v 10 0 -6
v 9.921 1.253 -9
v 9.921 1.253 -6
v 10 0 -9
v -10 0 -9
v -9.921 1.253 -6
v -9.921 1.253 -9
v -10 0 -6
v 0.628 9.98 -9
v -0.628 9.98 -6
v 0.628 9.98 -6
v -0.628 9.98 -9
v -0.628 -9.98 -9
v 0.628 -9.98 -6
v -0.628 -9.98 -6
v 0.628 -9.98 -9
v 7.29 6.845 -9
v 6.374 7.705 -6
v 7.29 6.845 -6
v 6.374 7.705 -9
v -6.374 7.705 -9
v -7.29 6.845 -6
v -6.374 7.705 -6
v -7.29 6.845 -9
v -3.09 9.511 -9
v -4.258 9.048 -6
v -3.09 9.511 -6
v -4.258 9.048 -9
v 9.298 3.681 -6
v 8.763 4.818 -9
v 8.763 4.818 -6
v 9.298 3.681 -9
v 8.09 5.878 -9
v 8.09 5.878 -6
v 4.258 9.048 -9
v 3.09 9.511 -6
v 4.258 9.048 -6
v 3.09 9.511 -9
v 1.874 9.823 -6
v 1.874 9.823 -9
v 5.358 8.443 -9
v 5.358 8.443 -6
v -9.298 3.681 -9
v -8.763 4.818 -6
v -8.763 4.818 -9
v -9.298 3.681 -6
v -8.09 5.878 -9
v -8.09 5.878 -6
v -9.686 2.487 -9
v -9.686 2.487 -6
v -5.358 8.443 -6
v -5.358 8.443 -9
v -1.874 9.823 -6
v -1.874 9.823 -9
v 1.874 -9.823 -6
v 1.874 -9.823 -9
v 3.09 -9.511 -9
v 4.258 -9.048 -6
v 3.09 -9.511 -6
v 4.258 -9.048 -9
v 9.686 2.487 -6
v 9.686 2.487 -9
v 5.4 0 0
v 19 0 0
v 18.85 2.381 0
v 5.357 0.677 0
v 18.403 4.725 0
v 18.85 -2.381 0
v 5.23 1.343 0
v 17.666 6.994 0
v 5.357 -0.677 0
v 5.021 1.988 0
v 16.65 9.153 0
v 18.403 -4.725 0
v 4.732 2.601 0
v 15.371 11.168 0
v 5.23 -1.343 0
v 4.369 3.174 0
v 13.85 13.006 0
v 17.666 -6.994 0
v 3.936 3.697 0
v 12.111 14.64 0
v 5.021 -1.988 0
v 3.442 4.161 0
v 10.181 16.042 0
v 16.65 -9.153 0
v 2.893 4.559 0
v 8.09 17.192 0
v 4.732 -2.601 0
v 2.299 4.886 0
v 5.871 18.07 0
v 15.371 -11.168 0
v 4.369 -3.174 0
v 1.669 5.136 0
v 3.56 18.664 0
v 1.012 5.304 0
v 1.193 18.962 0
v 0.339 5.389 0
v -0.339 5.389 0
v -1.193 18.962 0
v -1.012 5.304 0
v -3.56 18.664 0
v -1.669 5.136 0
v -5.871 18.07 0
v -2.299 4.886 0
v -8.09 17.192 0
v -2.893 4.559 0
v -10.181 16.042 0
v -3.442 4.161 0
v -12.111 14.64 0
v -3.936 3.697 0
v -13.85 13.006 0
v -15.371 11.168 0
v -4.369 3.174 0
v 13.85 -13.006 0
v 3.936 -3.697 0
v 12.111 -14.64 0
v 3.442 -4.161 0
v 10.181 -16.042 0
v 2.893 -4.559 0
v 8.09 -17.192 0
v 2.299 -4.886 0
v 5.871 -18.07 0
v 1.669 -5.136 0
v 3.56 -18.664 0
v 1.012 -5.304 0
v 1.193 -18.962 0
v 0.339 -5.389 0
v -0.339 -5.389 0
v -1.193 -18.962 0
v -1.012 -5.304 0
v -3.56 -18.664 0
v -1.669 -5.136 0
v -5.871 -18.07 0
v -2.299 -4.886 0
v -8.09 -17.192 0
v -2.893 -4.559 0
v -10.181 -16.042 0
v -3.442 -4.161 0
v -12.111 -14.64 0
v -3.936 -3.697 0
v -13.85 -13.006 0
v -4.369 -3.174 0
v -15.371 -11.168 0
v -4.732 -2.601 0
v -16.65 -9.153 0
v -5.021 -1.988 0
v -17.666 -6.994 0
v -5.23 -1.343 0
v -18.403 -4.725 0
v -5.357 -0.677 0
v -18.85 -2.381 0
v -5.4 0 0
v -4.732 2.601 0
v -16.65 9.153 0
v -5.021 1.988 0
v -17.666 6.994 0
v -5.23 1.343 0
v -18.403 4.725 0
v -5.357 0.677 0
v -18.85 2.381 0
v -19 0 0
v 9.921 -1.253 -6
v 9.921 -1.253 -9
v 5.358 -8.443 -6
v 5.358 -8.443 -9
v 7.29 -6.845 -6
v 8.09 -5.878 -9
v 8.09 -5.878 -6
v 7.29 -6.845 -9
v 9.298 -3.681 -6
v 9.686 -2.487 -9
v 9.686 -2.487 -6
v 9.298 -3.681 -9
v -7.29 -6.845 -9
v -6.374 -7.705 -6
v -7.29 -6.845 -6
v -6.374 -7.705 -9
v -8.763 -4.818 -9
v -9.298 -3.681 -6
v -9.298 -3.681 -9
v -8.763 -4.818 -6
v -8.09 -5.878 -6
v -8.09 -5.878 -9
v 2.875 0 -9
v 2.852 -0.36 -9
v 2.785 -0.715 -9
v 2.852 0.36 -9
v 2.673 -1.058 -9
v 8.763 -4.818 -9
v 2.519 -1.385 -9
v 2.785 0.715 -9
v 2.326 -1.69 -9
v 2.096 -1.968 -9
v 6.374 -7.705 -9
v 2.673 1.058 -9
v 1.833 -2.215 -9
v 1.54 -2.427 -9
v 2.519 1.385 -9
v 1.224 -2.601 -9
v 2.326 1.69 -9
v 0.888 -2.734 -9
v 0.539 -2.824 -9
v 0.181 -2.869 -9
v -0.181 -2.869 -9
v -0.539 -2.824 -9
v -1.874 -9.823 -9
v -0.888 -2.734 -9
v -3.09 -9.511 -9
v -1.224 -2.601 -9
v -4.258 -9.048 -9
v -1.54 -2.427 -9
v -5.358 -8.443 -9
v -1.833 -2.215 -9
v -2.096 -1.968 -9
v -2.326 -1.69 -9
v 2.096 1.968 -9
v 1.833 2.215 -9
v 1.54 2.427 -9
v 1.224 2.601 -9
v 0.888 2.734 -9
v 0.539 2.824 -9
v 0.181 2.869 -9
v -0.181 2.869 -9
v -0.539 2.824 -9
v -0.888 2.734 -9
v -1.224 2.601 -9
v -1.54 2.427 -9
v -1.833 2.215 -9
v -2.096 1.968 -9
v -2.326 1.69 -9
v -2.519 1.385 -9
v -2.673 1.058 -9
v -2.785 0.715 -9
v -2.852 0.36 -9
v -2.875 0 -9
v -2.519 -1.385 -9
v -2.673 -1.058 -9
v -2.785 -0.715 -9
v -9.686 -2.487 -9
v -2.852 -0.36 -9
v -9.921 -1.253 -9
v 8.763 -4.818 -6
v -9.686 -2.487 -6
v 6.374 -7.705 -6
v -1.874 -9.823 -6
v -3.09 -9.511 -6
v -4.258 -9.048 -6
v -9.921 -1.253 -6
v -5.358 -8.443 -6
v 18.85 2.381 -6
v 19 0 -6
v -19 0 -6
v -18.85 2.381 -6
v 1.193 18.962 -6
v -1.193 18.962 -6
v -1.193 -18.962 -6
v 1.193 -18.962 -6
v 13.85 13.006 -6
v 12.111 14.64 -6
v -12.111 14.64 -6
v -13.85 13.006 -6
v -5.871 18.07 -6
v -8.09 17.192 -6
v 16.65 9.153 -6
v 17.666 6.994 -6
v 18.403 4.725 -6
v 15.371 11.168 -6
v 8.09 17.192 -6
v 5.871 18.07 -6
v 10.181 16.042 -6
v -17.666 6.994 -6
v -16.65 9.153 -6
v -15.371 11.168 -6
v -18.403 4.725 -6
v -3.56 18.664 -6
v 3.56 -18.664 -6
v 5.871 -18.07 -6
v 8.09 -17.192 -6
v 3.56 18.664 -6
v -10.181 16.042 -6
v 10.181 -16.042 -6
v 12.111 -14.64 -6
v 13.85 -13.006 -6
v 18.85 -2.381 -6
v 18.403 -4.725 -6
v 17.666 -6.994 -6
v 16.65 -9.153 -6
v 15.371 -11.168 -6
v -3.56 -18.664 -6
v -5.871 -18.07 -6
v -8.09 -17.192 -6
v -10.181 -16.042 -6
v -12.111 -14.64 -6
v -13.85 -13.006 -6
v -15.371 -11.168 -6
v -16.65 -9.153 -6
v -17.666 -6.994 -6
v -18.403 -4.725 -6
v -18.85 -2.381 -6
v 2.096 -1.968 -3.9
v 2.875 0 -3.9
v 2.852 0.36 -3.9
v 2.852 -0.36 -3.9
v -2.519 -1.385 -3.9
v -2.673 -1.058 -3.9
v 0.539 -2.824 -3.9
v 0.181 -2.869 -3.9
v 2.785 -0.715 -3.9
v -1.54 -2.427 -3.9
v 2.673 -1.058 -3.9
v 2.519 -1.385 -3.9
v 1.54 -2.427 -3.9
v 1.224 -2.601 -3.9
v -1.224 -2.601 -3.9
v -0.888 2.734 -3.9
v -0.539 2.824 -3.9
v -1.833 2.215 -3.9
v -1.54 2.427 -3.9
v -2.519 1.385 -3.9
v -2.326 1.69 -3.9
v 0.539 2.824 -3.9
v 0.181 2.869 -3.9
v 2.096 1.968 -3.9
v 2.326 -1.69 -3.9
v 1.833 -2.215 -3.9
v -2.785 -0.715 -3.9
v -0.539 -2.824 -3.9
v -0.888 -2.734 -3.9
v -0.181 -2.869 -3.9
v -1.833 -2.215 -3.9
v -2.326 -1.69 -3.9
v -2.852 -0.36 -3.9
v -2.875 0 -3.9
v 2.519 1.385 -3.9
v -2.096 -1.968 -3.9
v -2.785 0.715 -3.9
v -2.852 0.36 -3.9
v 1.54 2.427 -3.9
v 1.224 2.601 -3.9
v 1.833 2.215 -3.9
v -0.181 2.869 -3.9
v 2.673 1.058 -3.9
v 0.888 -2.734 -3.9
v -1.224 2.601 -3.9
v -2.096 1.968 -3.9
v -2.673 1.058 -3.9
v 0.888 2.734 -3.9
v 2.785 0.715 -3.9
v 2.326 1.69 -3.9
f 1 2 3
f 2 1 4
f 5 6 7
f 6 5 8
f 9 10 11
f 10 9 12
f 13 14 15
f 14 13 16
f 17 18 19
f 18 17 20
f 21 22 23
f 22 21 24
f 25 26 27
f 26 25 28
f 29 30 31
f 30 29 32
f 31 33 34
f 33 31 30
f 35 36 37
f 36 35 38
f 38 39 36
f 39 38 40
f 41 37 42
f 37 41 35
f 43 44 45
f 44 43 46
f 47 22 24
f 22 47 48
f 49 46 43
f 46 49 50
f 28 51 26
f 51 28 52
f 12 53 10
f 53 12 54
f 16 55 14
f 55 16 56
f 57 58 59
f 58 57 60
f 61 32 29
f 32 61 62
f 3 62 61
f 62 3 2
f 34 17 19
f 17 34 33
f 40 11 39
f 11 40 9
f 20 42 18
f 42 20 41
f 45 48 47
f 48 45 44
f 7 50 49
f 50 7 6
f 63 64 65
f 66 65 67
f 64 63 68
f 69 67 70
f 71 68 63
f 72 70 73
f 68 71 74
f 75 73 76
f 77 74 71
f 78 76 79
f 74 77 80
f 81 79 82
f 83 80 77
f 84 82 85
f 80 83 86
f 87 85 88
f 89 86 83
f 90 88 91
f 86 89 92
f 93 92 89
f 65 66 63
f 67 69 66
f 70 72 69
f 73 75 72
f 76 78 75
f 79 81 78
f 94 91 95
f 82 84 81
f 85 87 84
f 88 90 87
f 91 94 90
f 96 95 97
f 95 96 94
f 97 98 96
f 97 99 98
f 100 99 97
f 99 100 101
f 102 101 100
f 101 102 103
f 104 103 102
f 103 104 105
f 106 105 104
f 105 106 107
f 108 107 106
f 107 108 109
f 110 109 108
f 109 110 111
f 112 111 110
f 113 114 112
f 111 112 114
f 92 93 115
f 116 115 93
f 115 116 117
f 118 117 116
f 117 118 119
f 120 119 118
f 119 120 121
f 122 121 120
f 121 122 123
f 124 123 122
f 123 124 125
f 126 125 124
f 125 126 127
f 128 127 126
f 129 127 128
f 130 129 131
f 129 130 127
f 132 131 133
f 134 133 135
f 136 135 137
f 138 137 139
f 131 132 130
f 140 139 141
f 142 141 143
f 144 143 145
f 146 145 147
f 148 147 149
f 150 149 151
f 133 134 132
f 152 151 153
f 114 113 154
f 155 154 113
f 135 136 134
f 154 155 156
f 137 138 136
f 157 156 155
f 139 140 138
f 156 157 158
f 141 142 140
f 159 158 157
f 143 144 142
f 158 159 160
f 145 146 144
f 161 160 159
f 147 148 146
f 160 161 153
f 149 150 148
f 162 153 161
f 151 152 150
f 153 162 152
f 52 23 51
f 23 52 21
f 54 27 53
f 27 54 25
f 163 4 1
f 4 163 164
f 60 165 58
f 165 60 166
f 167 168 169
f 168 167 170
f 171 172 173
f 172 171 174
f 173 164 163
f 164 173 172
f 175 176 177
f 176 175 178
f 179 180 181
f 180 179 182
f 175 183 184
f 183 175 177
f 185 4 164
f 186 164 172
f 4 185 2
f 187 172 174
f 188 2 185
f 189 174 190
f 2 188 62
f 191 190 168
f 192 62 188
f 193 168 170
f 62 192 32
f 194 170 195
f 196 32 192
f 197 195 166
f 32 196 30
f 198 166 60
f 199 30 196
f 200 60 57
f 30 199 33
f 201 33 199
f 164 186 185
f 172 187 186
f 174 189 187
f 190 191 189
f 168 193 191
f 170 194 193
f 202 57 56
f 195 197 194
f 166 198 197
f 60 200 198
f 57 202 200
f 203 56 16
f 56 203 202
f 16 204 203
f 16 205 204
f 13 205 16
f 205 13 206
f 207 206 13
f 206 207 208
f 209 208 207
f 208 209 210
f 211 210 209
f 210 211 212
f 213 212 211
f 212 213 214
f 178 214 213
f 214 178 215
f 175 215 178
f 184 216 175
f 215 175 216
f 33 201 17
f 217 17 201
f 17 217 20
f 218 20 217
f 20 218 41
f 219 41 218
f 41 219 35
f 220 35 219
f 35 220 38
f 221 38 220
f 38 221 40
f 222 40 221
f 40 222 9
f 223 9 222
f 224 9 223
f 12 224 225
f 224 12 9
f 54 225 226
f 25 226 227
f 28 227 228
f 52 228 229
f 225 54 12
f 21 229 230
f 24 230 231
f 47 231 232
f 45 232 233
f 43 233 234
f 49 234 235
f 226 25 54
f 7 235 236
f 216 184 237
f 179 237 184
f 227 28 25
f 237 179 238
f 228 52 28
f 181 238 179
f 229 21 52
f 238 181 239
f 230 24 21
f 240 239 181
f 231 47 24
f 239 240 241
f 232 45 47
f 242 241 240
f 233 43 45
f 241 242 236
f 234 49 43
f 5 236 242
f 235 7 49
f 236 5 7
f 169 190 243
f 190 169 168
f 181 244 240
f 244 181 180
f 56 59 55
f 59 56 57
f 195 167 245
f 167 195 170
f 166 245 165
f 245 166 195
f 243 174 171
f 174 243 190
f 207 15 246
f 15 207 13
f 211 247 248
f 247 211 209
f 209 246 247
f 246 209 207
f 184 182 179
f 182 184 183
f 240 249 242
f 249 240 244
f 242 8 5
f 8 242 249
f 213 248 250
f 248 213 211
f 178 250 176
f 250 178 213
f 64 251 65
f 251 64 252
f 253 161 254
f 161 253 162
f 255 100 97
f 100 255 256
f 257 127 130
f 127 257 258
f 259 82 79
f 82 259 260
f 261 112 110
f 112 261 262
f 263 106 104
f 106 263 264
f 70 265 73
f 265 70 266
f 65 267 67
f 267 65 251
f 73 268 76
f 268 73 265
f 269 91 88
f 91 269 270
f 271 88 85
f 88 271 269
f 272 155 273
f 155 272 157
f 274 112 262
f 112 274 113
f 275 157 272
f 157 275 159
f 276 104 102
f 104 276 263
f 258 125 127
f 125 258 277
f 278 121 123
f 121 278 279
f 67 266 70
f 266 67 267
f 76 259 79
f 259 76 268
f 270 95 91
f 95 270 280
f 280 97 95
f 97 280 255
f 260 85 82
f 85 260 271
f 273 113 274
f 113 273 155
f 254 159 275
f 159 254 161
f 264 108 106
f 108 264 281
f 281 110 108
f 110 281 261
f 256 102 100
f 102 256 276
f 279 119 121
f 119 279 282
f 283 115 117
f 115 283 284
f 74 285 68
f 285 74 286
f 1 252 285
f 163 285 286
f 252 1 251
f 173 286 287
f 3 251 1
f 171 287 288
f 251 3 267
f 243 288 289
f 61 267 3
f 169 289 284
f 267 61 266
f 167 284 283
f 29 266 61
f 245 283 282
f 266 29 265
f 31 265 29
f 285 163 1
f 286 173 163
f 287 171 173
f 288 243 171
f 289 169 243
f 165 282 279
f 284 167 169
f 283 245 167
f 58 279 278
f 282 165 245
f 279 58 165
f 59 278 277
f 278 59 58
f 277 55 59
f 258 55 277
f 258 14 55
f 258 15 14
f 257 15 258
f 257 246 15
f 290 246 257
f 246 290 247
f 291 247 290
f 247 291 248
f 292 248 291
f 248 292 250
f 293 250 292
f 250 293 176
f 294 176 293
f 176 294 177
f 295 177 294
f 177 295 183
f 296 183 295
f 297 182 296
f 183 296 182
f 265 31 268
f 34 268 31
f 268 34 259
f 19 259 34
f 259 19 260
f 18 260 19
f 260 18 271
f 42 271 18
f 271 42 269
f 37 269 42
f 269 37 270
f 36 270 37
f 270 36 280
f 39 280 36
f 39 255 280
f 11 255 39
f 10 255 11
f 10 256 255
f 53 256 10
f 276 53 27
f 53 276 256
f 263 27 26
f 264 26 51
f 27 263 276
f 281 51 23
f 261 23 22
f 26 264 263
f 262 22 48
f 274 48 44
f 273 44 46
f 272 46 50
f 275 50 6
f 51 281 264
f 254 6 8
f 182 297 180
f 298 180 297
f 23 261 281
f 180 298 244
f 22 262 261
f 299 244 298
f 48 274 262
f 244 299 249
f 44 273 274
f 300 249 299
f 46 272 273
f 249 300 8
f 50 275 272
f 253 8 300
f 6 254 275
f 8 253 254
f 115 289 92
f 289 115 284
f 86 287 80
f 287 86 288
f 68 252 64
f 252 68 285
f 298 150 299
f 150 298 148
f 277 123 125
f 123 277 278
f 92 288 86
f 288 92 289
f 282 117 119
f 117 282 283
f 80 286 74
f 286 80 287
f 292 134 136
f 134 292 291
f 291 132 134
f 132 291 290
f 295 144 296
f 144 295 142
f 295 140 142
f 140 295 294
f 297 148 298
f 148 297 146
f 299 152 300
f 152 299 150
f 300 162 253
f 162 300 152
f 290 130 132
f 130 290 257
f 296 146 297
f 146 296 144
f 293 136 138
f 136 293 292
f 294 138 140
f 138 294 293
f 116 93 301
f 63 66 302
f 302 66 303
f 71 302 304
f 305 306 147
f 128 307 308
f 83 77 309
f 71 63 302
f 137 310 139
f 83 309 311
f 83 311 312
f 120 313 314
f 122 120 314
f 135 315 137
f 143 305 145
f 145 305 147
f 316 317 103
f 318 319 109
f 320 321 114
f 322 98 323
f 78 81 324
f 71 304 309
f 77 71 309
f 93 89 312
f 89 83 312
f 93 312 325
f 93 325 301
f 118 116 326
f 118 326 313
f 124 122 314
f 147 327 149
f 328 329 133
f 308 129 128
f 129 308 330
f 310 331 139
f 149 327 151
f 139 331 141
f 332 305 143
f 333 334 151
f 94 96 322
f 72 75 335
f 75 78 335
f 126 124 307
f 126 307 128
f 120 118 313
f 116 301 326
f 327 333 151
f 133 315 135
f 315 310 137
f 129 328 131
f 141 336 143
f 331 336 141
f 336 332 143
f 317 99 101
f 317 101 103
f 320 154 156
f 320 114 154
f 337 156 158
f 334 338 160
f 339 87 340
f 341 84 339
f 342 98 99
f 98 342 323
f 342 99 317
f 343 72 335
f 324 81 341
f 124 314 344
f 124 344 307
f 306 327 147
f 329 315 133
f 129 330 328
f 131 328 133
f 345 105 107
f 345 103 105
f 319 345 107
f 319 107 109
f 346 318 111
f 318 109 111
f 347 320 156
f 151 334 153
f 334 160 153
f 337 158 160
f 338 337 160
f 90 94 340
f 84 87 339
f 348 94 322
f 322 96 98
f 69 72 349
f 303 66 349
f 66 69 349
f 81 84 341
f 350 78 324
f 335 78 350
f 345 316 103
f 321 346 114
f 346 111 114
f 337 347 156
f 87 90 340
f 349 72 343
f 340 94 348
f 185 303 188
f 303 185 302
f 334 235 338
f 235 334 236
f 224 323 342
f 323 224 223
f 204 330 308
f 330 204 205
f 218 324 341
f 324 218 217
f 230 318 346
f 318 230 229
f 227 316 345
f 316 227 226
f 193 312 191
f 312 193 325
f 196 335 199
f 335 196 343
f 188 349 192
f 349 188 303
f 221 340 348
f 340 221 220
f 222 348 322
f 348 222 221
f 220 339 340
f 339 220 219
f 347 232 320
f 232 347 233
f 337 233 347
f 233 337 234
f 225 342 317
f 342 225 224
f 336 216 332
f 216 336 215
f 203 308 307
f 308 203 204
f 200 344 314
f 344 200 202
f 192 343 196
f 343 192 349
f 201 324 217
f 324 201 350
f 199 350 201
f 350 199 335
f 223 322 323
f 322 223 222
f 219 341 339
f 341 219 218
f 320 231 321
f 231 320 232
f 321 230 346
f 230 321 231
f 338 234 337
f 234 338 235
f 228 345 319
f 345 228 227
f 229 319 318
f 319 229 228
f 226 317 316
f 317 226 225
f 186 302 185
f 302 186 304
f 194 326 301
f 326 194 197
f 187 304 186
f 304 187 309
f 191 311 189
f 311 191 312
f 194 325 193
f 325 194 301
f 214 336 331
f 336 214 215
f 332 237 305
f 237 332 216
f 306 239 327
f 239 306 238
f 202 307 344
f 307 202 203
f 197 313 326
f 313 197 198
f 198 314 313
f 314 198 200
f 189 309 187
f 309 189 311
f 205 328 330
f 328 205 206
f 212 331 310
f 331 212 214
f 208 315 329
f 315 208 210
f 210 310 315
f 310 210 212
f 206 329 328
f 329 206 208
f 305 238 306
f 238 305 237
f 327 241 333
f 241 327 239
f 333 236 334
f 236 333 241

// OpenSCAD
$fn = 50;


difference() {
	union() {
		translate(v = [0, 0, -9.0000000000]) {
			cylinder(h = 9, r = 10.0000000000);
		}
		translate(v = [0, 0, -6.0000000000]) {
			cylinder(h = 6, r = 19.0000000000);
		}
	}
	union() {
		translate(v = [0, 0, 0]) {
			rotate(a = [0, 0, 0]) {
				difference() {
					union() {
						#translate(v = [0, 0, -9.0000000000]) {
							cylinder(h = 9, r = 2.6000000000);
						}
						#translate(v = [0, 0, -3.9000000000]) {
							cylinder(h = 3.9000000000, r1 = 2.8750000000, r2 = 5.4000000000);
						}
						#translate(v = [0, 0, -9.0000000000]) {
							cylinder(h = 9, r = 2.8750000000);
						}
						#translate(v = [0, 0, -9.0000000000]) {
							cylinder(h = 9, r = 2.6000000000);
						}
					}
					union();
				}
			}
		}
	}
}
